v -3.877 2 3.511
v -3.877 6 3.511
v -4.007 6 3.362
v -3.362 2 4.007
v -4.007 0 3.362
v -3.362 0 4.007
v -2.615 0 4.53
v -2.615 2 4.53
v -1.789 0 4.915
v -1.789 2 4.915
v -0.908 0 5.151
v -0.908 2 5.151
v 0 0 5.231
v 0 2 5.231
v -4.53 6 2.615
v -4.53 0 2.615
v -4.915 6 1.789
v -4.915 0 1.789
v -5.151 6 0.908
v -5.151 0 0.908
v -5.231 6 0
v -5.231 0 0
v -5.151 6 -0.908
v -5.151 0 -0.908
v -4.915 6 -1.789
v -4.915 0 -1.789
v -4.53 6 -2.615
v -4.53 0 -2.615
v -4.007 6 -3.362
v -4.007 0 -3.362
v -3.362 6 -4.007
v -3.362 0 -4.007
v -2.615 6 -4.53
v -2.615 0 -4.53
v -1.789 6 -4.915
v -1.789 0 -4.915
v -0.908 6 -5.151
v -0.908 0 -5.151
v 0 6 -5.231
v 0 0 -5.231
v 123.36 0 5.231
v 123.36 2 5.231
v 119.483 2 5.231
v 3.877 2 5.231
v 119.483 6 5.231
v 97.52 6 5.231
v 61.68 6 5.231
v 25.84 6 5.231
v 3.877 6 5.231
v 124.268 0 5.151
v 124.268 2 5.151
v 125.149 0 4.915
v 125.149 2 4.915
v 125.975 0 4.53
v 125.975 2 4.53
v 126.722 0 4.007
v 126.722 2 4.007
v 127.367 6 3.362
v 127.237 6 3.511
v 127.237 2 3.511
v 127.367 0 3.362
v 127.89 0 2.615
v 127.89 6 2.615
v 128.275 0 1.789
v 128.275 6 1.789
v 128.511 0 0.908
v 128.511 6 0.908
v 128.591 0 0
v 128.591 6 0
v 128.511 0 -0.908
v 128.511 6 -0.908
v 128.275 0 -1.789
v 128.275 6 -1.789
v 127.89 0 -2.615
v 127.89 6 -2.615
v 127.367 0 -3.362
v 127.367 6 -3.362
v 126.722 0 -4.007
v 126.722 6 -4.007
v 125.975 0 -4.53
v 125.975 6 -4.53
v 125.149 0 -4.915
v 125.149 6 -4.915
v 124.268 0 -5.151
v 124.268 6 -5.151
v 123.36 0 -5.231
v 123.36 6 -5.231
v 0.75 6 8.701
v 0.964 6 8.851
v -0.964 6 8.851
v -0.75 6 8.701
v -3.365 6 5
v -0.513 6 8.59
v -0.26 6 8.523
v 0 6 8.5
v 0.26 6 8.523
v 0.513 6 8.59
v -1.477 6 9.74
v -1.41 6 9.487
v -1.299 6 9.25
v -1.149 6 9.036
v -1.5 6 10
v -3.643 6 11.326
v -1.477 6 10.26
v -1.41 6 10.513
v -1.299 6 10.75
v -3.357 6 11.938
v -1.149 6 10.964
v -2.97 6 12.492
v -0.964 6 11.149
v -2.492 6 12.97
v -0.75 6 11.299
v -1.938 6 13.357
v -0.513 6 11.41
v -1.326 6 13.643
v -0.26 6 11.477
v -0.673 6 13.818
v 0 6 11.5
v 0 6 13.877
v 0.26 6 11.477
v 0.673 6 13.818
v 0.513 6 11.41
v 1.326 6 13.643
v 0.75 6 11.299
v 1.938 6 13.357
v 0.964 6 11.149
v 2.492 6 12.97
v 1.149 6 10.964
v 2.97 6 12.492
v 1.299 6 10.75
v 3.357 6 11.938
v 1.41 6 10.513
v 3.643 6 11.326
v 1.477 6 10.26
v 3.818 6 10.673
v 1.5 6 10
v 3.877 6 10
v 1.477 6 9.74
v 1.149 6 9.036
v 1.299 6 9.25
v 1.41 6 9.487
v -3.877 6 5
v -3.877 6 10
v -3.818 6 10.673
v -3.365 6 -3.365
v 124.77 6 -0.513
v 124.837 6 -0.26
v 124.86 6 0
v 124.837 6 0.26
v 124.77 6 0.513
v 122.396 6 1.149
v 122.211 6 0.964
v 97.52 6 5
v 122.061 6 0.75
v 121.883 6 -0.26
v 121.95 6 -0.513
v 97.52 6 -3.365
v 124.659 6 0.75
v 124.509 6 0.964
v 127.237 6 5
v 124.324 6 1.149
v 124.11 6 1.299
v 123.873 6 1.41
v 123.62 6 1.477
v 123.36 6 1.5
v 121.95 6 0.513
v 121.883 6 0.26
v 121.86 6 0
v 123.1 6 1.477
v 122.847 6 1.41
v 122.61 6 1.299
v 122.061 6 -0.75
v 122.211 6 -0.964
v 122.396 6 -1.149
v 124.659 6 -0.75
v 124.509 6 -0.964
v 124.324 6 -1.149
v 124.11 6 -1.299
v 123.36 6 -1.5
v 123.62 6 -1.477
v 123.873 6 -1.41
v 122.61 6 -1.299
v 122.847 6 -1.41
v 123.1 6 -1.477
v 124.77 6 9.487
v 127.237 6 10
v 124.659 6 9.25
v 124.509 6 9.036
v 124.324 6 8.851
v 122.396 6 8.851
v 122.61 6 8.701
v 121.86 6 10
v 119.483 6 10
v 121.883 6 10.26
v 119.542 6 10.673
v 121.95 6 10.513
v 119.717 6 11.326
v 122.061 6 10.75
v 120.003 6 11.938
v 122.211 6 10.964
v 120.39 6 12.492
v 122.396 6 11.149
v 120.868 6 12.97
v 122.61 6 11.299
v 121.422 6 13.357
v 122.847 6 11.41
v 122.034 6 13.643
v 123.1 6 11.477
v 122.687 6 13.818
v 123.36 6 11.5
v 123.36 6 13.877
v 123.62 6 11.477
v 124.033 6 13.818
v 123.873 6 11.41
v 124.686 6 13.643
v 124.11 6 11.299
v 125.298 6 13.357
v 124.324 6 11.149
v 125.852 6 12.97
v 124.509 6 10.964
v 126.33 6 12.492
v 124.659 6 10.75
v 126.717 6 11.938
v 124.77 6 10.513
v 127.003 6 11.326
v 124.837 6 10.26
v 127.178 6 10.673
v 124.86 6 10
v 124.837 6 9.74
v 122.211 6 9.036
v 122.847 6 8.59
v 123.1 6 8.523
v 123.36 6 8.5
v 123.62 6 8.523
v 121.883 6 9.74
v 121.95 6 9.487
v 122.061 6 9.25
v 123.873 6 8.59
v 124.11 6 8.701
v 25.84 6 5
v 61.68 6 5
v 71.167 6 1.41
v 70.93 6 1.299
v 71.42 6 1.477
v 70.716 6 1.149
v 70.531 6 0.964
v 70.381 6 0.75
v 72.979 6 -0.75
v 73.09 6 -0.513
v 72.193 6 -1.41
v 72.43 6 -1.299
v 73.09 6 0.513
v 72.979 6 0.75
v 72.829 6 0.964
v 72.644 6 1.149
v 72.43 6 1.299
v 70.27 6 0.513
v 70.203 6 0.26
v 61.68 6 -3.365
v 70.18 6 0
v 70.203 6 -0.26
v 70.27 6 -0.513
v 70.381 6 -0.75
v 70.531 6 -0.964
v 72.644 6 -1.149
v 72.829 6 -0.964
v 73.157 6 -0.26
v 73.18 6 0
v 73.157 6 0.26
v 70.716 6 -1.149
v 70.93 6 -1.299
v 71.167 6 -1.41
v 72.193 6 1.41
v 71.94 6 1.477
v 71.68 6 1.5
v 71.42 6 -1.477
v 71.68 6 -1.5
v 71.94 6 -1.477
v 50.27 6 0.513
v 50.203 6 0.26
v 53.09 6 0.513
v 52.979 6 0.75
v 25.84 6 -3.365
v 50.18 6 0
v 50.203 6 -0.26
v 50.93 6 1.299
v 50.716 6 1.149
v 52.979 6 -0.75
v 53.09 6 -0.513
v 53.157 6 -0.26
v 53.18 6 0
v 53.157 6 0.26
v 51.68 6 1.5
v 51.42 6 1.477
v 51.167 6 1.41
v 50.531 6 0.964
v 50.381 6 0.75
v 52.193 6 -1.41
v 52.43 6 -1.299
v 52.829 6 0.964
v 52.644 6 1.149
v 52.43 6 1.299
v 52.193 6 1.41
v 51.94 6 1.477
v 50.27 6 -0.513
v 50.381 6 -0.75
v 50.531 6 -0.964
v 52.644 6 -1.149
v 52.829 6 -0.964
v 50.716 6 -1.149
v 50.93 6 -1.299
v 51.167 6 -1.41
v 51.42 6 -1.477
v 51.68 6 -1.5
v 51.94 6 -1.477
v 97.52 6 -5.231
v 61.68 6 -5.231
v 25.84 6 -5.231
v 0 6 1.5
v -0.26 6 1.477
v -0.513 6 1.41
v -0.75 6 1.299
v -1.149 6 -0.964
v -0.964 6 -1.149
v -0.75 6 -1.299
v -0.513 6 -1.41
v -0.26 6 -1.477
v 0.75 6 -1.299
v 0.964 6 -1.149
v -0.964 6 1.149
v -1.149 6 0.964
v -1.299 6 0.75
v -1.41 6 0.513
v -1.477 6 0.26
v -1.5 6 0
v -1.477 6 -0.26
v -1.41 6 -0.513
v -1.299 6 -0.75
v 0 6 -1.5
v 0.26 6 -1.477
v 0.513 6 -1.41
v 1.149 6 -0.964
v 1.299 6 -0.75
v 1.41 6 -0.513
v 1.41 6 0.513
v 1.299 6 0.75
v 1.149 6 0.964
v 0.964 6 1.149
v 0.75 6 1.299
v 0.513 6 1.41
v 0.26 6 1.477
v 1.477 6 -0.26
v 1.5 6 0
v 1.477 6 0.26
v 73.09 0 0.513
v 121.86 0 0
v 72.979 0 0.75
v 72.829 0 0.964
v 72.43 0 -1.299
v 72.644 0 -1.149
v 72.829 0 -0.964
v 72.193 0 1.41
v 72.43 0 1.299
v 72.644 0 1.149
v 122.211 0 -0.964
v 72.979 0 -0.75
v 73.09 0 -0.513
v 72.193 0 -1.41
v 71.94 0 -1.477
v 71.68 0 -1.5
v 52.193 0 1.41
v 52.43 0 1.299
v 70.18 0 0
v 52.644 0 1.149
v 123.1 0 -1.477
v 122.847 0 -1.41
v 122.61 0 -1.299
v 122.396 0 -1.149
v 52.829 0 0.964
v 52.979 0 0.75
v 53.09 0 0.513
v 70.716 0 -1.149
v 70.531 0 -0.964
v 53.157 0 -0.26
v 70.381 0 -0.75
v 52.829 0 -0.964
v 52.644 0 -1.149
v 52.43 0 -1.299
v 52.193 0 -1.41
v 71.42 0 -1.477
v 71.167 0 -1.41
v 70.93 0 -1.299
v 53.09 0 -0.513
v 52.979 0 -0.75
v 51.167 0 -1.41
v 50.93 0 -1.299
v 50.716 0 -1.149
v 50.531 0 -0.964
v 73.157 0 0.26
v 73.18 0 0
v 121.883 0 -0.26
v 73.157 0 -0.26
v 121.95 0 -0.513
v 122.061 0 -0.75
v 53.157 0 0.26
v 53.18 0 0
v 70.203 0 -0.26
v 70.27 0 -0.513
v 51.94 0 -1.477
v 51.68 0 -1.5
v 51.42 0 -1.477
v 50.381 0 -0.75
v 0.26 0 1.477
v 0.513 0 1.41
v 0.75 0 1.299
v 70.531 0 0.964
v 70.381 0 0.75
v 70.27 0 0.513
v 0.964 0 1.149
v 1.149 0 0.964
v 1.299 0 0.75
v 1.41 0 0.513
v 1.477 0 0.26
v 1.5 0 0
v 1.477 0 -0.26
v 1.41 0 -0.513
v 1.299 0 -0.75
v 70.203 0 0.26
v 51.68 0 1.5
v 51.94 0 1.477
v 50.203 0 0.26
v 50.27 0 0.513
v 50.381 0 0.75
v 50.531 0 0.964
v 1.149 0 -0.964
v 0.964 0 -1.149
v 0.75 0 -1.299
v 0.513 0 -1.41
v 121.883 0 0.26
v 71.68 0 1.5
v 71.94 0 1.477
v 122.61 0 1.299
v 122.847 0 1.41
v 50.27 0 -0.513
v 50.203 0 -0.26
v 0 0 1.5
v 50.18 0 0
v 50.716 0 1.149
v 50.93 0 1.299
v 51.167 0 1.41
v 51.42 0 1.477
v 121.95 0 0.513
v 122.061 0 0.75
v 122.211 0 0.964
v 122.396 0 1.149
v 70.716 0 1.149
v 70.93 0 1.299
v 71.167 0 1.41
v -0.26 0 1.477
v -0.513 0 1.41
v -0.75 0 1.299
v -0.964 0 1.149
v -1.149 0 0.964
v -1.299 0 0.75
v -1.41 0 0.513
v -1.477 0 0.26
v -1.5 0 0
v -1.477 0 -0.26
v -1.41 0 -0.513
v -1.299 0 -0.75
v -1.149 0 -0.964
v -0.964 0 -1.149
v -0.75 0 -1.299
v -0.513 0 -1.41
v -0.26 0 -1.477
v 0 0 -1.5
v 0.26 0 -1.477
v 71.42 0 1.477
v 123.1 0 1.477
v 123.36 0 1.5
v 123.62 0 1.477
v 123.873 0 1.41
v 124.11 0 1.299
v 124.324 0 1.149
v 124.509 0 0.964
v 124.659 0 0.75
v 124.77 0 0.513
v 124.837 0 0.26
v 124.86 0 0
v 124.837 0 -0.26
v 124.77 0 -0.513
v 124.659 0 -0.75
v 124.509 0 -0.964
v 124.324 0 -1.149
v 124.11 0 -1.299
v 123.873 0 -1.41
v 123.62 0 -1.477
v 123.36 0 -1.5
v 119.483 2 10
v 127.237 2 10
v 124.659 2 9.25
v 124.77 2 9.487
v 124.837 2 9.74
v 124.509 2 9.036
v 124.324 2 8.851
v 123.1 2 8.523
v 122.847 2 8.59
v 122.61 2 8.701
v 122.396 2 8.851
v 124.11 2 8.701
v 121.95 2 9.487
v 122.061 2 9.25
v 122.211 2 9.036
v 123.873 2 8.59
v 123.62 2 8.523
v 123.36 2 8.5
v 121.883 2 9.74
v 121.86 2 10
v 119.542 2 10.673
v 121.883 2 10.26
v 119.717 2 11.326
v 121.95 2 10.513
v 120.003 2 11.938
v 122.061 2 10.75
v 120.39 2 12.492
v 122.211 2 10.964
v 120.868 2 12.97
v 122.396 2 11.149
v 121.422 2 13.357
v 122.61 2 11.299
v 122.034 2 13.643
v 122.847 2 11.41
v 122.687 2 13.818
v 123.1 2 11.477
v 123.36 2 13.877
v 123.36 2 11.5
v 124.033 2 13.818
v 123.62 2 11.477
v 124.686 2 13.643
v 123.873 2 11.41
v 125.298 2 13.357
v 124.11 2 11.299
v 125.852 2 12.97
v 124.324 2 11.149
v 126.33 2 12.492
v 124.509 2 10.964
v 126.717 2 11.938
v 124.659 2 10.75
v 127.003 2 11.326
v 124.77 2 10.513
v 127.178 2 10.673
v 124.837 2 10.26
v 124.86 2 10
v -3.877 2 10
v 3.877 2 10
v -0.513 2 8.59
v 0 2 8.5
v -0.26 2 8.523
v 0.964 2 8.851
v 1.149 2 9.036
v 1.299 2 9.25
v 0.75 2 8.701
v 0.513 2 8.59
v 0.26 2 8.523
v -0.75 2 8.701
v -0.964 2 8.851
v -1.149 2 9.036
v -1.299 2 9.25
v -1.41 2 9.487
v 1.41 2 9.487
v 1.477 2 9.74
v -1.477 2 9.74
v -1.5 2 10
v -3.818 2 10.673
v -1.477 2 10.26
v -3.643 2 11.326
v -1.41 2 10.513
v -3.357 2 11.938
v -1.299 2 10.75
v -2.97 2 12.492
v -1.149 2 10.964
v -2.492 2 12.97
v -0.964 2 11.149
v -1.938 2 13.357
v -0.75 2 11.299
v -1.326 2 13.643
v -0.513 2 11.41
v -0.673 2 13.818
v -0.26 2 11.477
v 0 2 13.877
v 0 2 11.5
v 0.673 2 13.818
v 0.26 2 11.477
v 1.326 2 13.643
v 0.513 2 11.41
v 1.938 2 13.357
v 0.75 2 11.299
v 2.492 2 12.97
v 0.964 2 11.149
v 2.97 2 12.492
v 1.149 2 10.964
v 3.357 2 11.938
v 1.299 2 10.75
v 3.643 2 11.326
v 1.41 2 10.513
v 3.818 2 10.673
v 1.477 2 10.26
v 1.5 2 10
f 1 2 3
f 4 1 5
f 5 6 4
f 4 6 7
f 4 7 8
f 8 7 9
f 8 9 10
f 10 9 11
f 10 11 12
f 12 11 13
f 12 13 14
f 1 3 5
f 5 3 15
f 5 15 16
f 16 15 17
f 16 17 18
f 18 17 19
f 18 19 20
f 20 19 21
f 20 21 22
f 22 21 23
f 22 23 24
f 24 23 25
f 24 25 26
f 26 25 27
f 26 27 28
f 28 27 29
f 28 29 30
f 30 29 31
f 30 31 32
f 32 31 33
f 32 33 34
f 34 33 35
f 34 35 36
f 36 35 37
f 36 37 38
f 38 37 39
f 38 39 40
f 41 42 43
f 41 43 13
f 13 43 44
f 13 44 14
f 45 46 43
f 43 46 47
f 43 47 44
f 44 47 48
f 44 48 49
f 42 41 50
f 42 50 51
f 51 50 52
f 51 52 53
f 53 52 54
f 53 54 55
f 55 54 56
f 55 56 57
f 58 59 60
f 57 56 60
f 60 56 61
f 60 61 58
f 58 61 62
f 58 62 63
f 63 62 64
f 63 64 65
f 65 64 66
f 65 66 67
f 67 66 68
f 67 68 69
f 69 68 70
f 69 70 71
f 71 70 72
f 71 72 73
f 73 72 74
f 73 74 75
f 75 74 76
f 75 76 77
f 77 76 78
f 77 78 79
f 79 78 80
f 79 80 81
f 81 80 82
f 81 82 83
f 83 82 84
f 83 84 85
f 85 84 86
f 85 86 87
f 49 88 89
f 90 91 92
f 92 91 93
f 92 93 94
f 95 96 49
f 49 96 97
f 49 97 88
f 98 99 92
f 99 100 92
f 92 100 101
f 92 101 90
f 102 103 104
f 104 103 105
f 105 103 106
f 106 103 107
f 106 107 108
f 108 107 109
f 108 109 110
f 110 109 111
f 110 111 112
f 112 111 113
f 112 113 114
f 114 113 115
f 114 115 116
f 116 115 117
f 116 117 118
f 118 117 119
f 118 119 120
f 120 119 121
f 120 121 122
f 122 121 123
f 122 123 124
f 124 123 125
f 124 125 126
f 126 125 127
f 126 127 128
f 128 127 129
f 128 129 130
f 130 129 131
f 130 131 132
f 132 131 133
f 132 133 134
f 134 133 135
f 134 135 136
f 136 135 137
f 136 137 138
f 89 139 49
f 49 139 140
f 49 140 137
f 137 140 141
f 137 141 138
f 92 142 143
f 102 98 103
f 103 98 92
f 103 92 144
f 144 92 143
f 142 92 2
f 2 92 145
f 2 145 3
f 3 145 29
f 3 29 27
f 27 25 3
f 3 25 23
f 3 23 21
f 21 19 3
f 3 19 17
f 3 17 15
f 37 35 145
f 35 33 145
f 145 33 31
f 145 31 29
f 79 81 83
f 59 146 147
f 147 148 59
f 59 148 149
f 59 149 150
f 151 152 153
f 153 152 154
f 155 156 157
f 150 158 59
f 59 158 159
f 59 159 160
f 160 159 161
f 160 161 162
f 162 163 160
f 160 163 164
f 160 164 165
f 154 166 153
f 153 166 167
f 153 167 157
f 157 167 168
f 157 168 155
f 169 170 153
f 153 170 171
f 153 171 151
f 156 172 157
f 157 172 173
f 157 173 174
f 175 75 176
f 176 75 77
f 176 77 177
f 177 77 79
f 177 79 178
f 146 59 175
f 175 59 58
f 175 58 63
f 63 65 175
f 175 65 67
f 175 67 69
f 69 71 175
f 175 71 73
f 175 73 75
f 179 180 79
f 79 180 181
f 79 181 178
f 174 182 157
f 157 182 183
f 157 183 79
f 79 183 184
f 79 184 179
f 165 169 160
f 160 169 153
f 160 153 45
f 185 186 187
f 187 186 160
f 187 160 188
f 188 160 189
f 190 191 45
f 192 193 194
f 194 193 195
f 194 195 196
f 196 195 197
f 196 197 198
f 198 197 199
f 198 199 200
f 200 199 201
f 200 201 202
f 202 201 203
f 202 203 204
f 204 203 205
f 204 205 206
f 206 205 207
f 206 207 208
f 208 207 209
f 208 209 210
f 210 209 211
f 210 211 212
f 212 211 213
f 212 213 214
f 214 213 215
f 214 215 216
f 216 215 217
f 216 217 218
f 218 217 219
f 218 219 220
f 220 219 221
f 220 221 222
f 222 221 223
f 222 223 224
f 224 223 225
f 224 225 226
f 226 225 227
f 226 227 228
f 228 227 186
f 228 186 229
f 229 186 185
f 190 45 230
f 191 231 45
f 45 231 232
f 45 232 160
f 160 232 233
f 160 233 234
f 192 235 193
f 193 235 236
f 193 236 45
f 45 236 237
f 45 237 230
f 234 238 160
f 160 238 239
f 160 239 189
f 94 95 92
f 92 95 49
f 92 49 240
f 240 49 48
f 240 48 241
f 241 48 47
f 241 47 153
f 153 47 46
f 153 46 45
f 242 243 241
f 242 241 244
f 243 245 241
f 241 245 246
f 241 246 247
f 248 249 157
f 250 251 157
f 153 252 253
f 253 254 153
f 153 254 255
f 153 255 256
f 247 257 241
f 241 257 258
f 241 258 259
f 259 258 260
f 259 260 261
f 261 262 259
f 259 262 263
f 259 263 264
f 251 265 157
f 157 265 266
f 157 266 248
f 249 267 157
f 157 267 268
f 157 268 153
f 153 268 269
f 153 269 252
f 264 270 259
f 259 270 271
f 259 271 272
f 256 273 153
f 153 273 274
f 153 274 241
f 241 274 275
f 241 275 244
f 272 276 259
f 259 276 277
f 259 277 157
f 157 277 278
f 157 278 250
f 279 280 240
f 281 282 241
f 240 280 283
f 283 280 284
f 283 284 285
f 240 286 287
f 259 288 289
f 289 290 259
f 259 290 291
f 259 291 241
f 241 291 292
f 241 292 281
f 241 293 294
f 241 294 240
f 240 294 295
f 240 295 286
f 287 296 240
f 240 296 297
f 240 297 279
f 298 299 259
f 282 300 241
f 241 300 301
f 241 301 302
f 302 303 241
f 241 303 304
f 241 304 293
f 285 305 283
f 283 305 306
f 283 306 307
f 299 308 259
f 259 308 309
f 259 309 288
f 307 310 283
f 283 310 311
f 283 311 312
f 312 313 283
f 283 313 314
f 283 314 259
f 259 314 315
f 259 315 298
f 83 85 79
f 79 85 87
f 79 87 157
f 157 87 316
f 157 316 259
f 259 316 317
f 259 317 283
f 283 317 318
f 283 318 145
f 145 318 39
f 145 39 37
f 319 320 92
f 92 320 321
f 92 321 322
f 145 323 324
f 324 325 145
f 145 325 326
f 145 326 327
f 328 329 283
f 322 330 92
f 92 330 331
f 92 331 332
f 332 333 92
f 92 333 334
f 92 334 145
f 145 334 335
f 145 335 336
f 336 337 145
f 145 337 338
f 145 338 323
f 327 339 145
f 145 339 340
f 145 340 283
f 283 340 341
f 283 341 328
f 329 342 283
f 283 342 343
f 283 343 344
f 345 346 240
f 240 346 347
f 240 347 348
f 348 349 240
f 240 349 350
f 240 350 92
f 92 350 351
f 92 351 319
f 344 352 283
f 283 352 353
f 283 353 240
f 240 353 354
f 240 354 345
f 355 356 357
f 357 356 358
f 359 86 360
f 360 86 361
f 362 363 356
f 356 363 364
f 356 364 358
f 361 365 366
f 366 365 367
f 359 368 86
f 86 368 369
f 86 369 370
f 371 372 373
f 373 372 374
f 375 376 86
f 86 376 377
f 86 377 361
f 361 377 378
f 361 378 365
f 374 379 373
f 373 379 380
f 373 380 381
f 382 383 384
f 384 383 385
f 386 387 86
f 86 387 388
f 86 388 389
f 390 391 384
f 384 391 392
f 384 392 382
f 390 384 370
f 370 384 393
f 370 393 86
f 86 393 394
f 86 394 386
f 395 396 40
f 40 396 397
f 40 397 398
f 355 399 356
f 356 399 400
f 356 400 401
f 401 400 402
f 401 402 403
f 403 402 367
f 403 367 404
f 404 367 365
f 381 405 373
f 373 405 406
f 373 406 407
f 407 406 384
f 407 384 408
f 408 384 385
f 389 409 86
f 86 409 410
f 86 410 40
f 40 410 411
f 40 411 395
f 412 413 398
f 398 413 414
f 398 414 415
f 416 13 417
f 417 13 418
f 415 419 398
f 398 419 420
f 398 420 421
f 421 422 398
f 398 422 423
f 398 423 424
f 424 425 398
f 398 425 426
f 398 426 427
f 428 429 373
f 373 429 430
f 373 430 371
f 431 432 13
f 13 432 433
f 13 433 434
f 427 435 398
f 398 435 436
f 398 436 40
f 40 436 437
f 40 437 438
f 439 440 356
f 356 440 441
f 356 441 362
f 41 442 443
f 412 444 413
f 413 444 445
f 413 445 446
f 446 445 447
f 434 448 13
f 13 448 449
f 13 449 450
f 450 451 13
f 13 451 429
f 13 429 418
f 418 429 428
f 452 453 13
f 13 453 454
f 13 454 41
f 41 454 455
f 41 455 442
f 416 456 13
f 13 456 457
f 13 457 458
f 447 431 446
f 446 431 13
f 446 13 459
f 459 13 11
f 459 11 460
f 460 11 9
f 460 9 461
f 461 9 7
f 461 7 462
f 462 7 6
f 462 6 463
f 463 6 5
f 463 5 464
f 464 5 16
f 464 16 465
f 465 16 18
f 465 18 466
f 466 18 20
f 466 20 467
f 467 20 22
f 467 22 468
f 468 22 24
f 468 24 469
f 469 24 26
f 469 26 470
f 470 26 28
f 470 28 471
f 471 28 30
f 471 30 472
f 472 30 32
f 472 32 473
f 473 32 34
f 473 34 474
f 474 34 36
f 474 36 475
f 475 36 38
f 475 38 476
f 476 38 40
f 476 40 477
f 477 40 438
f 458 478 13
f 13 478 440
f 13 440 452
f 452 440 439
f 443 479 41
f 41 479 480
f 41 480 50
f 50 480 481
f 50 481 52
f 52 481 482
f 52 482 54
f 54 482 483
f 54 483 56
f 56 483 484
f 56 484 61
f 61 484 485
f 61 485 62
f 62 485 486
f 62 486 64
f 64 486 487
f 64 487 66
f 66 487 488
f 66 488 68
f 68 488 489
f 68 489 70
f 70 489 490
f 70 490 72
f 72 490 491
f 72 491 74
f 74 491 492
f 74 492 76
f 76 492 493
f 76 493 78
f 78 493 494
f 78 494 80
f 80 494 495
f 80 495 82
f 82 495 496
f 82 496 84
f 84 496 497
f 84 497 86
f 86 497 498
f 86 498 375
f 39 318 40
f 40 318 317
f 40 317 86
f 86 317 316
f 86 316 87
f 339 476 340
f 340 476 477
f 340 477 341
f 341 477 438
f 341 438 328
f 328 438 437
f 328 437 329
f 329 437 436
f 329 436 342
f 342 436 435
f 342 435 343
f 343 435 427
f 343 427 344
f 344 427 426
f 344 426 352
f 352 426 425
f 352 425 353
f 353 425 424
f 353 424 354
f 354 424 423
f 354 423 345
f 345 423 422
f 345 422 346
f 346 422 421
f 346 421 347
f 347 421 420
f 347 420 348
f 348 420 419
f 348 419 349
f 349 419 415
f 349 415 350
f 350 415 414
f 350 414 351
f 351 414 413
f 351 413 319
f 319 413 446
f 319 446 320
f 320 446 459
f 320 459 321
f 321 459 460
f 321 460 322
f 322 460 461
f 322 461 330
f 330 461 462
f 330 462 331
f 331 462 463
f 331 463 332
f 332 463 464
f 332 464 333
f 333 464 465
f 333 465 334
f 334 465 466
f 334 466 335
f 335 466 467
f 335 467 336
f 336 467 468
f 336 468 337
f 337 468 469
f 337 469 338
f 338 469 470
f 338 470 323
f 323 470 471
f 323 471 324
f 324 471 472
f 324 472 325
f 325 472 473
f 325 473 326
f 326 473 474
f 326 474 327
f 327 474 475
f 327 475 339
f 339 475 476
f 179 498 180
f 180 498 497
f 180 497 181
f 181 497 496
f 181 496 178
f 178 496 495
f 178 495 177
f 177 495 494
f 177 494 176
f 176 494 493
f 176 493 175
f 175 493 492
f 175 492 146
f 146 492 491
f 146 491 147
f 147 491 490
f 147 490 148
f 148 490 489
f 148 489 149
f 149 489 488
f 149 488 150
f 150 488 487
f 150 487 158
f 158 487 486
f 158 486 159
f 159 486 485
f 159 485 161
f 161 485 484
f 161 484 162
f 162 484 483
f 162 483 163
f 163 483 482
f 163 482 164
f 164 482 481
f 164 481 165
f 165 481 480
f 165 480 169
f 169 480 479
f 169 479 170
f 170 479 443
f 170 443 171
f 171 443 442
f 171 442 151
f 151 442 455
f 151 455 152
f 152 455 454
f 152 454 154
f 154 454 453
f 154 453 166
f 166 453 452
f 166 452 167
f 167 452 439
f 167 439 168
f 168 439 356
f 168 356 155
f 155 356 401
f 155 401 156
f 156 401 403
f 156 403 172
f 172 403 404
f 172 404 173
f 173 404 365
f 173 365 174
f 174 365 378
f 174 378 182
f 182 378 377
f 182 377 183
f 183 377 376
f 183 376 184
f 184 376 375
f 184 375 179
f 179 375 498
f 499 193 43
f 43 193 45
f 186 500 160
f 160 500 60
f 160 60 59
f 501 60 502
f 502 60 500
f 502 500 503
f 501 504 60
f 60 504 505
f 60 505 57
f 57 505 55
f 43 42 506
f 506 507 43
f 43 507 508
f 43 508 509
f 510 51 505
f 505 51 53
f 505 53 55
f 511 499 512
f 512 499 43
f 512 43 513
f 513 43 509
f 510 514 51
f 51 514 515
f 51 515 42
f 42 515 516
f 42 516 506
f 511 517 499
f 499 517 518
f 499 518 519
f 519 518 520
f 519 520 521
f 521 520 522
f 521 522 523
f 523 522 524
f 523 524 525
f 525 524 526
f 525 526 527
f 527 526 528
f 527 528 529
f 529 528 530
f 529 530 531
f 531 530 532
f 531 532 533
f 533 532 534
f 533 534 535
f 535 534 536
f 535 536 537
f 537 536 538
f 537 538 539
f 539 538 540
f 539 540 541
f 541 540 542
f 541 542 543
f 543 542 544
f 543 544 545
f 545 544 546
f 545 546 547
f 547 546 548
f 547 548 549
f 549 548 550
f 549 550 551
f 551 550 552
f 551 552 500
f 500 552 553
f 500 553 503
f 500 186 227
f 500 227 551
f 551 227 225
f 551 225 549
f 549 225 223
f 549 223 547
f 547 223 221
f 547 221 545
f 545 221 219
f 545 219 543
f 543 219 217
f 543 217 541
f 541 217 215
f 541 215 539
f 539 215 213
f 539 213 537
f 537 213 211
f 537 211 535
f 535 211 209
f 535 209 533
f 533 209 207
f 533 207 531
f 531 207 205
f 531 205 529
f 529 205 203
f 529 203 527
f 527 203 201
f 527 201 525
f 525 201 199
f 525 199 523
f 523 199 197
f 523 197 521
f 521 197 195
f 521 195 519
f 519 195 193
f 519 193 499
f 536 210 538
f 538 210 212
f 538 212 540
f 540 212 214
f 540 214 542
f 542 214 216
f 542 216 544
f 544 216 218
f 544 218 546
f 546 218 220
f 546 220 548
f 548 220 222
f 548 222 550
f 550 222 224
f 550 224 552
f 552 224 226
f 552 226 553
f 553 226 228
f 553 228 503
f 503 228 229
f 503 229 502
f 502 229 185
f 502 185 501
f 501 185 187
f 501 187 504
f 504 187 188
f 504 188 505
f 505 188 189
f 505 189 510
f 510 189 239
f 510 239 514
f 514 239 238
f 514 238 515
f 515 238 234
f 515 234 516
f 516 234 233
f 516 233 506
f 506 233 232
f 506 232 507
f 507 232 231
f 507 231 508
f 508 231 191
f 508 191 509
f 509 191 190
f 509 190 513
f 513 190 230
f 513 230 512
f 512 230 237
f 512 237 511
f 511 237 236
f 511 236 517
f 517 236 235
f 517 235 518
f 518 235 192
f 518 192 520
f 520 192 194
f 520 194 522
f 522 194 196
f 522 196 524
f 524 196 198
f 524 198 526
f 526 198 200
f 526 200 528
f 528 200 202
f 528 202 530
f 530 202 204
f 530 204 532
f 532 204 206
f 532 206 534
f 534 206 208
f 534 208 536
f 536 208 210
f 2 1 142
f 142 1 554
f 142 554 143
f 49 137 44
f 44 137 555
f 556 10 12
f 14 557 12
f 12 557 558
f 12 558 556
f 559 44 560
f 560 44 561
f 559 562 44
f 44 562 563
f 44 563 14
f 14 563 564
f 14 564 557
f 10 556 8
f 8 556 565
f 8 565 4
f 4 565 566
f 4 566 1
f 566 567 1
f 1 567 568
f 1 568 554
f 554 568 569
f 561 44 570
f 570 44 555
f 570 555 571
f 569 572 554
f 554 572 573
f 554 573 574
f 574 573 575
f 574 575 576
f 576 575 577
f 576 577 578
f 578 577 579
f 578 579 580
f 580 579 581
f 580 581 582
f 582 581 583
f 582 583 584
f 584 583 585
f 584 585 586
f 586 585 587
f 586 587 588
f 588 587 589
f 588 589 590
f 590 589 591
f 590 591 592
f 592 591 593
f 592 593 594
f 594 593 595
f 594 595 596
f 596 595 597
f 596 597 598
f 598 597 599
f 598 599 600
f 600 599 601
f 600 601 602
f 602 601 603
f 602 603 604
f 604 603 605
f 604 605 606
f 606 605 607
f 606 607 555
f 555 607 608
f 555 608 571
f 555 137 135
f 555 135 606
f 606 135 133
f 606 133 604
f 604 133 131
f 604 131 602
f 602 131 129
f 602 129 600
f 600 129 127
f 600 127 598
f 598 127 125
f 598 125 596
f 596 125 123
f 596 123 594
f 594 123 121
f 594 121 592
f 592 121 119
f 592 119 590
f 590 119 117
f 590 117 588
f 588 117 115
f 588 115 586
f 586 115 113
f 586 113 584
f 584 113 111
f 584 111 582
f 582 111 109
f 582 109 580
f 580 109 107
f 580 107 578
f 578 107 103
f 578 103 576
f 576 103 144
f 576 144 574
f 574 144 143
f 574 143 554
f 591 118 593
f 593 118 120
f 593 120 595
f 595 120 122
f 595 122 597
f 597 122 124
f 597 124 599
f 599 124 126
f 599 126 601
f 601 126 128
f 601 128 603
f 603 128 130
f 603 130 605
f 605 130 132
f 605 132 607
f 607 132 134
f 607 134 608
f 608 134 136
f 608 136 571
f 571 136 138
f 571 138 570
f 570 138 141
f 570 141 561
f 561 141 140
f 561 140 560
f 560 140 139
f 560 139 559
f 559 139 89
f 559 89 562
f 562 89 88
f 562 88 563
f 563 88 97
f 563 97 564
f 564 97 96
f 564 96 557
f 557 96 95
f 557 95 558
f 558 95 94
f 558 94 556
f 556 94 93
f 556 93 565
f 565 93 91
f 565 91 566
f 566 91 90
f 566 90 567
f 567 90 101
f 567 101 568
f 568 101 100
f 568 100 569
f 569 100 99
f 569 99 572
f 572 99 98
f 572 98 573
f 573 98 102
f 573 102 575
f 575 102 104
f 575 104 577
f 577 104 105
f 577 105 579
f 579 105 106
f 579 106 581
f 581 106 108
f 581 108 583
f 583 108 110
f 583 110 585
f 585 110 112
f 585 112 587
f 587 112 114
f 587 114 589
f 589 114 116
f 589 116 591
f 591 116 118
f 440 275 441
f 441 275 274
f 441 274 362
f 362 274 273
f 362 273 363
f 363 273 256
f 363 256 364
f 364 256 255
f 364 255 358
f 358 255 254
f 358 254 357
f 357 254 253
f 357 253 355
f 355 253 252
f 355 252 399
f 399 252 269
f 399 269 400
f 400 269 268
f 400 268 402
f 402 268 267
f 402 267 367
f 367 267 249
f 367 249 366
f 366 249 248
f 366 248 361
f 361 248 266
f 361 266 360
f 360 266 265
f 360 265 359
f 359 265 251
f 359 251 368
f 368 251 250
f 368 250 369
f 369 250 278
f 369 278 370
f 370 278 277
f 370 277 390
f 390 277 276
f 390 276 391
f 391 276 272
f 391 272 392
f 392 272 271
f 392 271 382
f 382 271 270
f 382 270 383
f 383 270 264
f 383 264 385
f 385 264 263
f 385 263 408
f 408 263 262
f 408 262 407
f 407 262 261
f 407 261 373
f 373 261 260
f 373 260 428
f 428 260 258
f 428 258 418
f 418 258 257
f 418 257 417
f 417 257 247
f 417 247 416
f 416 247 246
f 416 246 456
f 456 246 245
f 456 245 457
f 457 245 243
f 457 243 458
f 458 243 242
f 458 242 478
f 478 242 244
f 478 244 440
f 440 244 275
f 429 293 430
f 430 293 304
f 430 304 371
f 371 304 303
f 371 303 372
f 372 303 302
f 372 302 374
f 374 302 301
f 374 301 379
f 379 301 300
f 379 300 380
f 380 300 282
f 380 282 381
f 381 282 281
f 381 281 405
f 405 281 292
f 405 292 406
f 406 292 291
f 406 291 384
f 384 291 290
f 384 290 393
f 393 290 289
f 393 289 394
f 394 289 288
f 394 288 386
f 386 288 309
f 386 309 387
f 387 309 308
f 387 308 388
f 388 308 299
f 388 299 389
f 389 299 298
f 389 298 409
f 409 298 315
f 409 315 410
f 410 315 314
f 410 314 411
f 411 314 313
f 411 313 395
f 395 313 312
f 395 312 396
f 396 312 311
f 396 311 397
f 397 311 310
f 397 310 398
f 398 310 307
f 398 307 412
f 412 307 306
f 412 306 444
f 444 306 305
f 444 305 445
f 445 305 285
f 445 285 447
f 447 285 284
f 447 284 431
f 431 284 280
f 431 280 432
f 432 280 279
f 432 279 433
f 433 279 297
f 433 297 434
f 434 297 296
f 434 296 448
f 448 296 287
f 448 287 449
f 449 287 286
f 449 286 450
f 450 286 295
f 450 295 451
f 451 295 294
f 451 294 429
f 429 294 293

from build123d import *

# Parameters (mm, degrees)
SKETCH1_R           = 1.5
BOSS_EXTRUDE1_DEPTH = 6
SKETCH2_R           = 1.5
BOSS_EXTRUDE2_DEPTH = 4
SKETCH3_R           = 1.5
CUT_EXTRUDE1_DEPTH  = 10


with BuildPart() as part:
    # Sketch1 → Boss-Extrude1 (new body)
    with BuildSketch(Plane(origin=(0, 0, 0), x_dir=(1, 0, 0), z_dir=(0, 1, 0))):
        with BuildLine():
            Line((0, 5.230556007), (123.36, 5.230556007))
            ThreePointArc((123.36, 5.230556007), (128.590556007, 0), (123.36, -5.230556007))
            Line((123.36, -5.230556007), (0, -5.230556007))
            ThreePointArc((0, -5.230556007), (-5.230556007, 0), (0, 5.230556007))
        make_face()
        Circle(SKETCH1_R, mode=Mode.SUBTRACT)
        with Locations((123.36, 0)):
            Circle(SKETCH1_R, mode=Mode.SUBTRACT)
    extrude(amount=BOSS_EXTRUDE1_DEPTH)

    # Sketch2 → Boss-Extrude2 (add)
    with BuildSketch(Plane(origin=(0, 6, 0), x_dir=(1, 0, 0), z_dir=(0, 1, 0))):
        with BuildLine():
            Line((3.876609724, 0), (3.876609724, -10))
            ThreePointArc((3.876609724, -10), (0, -13.876609724), (-3.876609724, -10))
            Line((-3.876609724, -10), (-3.876609724, 0))
            ThreePointArc((-3.876609724, 0), (0, 3.876609724), (3.876609724, 0))
        make_face()
        with Locations((0, -10)):
            Circle(SKETCH2_R, mode=Mode.SUBTRACT)
        Circle(SKETCH2_R, mode=Mode.SUBTRACT)
        with BuildLine():
            Line((119.483390276, 0), (119.483390276, -10))
            ThreePointArc((119.483390276, -10), (123.36, -13.876609724), (127.236609724, -10))
            Line((127.236609724, -10), (127.236609724, 0))
            ThreePointArc((127.236609724, 0), (123.36, 3.876609724), (119.483390276, 0))
        make_face()
        with Locations((123.36, 0)):
            Circle(SKETCH2_R, mode=Mode.SUBTRACT)
        with Locations((123.36, -10)):
            Circle(SKETCH2_R, mode=Mode.SUBTRACT)
    extrude(amount=-BOSS_EXTRUDE2_DEPTH)

    # Sketch3 → Cut-Extrude1 (cut)
    with BuildSketch(Plane(origin=(0, 6, 0), x_dir=(1, 0, 0), z_dir=(0, 1, 0))):
        with Locations((51.68, 0)):
            Circle(SKETCH3_R)
        with Locations((71.68, 0)):
            Circle(SKETCH3_R)
    extrude(amount=-CUT_EXTRUDE1_DEPTH, mode=Mode.SUBTRACT)


solid = part.part
